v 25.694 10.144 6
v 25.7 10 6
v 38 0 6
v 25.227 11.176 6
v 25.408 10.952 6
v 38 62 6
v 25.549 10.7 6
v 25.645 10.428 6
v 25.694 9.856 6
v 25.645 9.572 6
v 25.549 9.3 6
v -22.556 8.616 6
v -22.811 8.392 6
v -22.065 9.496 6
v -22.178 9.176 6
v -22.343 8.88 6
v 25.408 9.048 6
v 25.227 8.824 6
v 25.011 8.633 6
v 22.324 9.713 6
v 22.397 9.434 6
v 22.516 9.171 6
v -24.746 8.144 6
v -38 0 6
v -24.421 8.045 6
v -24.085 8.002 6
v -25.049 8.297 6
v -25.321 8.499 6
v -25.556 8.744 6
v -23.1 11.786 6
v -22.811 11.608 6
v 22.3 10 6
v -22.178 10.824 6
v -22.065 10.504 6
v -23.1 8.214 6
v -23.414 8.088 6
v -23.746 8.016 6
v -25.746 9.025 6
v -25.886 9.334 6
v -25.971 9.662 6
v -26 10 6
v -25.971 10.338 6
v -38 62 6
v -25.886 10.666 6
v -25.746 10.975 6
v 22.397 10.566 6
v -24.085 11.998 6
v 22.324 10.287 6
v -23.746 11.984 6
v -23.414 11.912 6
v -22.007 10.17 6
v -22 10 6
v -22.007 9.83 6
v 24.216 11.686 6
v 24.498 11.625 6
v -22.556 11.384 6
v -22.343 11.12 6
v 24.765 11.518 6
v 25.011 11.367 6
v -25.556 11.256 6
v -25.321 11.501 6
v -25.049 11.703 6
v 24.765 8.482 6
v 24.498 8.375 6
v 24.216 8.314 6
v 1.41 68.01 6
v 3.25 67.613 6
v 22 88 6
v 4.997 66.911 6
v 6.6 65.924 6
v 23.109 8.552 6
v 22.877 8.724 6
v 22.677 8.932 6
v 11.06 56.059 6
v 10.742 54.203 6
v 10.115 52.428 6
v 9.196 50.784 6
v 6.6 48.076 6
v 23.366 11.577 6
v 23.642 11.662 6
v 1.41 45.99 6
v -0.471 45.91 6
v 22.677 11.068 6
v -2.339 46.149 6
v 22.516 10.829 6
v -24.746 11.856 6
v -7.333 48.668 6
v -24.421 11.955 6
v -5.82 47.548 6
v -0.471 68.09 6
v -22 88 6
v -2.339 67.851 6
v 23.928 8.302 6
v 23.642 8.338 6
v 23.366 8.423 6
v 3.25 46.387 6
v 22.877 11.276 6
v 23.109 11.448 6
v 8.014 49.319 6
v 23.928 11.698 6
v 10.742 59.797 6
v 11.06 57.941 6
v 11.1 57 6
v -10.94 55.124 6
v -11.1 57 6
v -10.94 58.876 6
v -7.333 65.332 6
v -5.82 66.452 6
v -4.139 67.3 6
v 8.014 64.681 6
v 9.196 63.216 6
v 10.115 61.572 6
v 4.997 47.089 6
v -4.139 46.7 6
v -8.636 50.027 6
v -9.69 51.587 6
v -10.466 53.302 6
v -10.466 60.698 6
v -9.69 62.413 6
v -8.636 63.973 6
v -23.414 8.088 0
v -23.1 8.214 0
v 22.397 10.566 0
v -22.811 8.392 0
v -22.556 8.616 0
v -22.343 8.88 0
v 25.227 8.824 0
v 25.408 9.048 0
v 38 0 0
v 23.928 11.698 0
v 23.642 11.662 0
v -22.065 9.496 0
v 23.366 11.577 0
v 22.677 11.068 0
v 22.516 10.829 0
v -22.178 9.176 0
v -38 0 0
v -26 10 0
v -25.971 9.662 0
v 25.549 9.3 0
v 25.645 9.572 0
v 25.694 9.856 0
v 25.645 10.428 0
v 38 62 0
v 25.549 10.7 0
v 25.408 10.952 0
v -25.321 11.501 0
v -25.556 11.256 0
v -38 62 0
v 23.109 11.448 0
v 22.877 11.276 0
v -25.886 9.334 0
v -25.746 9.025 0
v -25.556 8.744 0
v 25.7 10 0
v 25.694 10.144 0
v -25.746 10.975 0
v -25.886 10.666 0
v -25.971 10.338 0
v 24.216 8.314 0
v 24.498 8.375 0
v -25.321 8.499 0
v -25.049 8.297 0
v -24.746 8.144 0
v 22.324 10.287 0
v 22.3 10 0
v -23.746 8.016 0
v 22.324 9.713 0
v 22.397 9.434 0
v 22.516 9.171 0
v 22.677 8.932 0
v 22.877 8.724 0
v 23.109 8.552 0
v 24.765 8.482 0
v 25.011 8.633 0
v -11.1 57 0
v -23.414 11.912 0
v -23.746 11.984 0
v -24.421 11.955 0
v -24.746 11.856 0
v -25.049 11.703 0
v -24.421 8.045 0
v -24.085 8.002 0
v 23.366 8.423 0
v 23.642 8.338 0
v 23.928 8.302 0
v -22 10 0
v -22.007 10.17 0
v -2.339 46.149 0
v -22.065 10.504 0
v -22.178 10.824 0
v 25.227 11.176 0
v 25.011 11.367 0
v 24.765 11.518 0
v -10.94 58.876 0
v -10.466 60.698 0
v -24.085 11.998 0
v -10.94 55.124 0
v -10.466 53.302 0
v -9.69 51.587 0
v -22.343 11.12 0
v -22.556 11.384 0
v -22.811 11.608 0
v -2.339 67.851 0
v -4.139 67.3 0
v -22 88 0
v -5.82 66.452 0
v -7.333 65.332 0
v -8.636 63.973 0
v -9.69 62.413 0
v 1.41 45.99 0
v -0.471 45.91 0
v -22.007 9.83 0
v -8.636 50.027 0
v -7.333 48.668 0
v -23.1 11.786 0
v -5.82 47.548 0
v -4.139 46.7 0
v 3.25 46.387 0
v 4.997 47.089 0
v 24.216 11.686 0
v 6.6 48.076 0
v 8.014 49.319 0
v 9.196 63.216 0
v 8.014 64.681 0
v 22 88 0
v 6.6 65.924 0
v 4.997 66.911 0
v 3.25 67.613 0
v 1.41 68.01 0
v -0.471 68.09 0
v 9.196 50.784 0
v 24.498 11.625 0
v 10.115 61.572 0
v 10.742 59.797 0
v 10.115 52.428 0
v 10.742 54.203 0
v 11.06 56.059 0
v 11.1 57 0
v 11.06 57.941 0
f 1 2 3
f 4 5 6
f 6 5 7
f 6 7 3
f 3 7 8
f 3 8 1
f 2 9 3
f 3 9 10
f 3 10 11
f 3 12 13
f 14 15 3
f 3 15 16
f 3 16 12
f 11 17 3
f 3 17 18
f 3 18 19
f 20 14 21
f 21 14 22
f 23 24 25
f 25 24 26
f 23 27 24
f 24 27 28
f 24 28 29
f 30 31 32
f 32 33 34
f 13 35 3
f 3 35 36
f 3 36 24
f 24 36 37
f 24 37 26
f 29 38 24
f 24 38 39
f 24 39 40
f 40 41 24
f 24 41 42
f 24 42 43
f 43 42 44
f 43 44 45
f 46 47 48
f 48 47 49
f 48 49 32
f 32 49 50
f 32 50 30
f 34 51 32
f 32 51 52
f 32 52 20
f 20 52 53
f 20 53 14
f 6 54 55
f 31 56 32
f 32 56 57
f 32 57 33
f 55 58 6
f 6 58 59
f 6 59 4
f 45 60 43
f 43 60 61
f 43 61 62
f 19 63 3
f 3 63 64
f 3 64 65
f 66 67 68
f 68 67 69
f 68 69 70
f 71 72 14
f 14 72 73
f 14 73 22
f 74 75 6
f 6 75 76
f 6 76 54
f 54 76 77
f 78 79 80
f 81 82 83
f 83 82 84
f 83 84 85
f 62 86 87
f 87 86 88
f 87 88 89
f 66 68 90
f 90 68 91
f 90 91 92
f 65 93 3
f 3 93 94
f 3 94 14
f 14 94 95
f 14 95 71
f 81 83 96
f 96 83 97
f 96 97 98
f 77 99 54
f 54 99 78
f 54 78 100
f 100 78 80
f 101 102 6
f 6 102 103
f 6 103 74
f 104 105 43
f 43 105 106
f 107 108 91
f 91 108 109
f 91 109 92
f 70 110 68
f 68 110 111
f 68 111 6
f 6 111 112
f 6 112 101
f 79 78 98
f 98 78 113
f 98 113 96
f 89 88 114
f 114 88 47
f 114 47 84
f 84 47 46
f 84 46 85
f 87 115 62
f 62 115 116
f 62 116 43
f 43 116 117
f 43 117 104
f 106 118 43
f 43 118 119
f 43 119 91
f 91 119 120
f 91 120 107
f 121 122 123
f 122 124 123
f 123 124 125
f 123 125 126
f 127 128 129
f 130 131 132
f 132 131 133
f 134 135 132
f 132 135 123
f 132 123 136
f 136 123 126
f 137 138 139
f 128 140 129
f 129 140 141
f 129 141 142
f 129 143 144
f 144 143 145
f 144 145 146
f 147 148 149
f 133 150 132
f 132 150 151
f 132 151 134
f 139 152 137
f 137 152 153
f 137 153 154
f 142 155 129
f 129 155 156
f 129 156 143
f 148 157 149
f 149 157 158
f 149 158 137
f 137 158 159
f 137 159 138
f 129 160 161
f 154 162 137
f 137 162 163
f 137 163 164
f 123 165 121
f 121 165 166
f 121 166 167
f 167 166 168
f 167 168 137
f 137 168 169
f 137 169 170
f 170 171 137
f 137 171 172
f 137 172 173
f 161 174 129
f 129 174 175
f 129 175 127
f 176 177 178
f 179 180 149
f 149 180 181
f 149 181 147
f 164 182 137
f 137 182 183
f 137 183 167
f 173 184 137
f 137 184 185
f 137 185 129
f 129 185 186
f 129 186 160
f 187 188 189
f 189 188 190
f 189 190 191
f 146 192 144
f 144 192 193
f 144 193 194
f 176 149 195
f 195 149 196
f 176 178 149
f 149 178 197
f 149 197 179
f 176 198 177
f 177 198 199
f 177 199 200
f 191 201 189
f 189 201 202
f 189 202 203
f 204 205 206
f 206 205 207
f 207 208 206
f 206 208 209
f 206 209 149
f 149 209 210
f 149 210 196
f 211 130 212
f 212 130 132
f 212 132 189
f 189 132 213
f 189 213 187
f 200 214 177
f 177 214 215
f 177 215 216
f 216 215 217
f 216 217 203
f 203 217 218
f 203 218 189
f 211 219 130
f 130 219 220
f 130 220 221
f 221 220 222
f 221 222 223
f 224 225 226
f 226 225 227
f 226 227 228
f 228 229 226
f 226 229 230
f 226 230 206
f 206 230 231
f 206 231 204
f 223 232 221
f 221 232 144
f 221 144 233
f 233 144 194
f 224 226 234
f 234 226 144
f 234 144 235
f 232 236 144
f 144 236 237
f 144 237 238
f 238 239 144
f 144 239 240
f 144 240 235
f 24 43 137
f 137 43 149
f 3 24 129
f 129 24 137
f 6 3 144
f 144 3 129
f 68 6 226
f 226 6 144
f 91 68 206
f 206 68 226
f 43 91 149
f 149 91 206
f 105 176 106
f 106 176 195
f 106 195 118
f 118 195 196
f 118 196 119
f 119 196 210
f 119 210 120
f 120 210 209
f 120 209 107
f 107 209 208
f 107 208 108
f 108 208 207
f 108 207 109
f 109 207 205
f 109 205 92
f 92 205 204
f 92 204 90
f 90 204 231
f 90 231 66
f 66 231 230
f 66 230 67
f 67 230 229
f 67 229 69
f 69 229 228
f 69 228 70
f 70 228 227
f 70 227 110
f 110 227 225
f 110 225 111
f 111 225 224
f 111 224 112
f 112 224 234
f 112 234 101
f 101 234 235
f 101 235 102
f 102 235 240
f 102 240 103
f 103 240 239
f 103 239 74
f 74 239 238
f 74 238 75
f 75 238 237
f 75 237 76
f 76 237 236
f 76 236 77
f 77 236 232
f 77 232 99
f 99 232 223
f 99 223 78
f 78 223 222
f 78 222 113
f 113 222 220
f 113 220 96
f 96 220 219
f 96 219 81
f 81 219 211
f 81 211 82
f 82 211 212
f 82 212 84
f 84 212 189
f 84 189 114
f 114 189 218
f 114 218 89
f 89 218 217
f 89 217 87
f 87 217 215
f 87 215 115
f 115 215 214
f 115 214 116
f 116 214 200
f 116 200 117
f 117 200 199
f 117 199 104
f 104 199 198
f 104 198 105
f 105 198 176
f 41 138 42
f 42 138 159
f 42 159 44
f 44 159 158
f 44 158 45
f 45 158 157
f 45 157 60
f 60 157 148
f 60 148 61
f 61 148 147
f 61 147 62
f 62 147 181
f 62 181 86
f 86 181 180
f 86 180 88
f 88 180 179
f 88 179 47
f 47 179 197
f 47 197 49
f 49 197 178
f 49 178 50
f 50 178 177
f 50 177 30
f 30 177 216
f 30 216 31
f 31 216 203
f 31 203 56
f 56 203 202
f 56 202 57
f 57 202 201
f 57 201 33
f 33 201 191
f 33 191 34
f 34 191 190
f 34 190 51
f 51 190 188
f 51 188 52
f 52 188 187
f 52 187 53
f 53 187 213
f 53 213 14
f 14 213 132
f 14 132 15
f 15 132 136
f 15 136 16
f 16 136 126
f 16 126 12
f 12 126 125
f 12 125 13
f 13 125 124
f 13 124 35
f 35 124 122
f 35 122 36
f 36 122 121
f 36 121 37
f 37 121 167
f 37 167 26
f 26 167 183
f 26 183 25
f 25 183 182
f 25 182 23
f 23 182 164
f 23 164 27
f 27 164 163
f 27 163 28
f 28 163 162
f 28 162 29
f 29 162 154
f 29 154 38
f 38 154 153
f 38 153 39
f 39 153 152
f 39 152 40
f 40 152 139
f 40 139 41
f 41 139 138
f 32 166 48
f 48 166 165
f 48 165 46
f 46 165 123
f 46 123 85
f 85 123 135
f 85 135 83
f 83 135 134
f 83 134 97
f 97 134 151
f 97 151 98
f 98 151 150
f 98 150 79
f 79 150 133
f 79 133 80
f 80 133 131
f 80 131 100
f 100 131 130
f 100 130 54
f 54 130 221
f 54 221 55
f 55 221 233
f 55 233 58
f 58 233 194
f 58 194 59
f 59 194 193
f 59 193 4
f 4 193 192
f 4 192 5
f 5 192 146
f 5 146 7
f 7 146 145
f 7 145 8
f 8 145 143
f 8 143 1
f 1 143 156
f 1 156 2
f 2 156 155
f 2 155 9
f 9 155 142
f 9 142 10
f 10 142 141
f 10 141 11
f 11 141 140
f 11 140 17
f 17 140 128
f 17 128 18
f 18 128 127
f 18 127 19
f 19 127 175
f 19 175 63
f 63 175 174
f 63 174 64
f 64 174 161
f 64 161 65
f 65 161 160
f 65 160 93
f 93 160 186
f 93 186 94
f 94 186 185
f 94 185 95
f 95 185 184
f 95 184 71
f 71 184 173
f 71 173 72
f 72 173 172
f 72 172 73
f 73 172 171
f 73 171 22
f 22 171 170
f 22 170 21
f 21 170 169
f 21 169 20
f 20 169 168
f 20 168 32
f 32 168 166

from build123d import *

# Parameters (mm, degrees)
SKETCH_1_R                  = 11.1
SKETCH_1_R_2                = 2
SKETCH_1_R_3                = 1.7
F_08_TILT_IDLER_CHEEK_DEPTH = 6


with BuildPart() as part:
    # Эскиз1 → 08_Tilt_idler_cheek (new body)
    with BuildSketch(Plane.XY):
        Polygon((-38, 0), (38, 0), (38, 62), (22, 88), (-22, 88), (-38, 62), align=None)
        with Locations((0, 57)):
            Circle(SKETCH_1_R, mode=Mode.SUBTRACT)
        with Locations((-24, 10)):
            Circle(SKETCH_1_R_2, mode=Mode.SUBTRACT)
        with Locations((24, 10)):
            Circle(SKETCH_1_R_3, mode=Mode.SUBTRACT)
    extrude(amount=F_08_TILT_IDLER_CHEEK_DEPTH)


solid = part.part
